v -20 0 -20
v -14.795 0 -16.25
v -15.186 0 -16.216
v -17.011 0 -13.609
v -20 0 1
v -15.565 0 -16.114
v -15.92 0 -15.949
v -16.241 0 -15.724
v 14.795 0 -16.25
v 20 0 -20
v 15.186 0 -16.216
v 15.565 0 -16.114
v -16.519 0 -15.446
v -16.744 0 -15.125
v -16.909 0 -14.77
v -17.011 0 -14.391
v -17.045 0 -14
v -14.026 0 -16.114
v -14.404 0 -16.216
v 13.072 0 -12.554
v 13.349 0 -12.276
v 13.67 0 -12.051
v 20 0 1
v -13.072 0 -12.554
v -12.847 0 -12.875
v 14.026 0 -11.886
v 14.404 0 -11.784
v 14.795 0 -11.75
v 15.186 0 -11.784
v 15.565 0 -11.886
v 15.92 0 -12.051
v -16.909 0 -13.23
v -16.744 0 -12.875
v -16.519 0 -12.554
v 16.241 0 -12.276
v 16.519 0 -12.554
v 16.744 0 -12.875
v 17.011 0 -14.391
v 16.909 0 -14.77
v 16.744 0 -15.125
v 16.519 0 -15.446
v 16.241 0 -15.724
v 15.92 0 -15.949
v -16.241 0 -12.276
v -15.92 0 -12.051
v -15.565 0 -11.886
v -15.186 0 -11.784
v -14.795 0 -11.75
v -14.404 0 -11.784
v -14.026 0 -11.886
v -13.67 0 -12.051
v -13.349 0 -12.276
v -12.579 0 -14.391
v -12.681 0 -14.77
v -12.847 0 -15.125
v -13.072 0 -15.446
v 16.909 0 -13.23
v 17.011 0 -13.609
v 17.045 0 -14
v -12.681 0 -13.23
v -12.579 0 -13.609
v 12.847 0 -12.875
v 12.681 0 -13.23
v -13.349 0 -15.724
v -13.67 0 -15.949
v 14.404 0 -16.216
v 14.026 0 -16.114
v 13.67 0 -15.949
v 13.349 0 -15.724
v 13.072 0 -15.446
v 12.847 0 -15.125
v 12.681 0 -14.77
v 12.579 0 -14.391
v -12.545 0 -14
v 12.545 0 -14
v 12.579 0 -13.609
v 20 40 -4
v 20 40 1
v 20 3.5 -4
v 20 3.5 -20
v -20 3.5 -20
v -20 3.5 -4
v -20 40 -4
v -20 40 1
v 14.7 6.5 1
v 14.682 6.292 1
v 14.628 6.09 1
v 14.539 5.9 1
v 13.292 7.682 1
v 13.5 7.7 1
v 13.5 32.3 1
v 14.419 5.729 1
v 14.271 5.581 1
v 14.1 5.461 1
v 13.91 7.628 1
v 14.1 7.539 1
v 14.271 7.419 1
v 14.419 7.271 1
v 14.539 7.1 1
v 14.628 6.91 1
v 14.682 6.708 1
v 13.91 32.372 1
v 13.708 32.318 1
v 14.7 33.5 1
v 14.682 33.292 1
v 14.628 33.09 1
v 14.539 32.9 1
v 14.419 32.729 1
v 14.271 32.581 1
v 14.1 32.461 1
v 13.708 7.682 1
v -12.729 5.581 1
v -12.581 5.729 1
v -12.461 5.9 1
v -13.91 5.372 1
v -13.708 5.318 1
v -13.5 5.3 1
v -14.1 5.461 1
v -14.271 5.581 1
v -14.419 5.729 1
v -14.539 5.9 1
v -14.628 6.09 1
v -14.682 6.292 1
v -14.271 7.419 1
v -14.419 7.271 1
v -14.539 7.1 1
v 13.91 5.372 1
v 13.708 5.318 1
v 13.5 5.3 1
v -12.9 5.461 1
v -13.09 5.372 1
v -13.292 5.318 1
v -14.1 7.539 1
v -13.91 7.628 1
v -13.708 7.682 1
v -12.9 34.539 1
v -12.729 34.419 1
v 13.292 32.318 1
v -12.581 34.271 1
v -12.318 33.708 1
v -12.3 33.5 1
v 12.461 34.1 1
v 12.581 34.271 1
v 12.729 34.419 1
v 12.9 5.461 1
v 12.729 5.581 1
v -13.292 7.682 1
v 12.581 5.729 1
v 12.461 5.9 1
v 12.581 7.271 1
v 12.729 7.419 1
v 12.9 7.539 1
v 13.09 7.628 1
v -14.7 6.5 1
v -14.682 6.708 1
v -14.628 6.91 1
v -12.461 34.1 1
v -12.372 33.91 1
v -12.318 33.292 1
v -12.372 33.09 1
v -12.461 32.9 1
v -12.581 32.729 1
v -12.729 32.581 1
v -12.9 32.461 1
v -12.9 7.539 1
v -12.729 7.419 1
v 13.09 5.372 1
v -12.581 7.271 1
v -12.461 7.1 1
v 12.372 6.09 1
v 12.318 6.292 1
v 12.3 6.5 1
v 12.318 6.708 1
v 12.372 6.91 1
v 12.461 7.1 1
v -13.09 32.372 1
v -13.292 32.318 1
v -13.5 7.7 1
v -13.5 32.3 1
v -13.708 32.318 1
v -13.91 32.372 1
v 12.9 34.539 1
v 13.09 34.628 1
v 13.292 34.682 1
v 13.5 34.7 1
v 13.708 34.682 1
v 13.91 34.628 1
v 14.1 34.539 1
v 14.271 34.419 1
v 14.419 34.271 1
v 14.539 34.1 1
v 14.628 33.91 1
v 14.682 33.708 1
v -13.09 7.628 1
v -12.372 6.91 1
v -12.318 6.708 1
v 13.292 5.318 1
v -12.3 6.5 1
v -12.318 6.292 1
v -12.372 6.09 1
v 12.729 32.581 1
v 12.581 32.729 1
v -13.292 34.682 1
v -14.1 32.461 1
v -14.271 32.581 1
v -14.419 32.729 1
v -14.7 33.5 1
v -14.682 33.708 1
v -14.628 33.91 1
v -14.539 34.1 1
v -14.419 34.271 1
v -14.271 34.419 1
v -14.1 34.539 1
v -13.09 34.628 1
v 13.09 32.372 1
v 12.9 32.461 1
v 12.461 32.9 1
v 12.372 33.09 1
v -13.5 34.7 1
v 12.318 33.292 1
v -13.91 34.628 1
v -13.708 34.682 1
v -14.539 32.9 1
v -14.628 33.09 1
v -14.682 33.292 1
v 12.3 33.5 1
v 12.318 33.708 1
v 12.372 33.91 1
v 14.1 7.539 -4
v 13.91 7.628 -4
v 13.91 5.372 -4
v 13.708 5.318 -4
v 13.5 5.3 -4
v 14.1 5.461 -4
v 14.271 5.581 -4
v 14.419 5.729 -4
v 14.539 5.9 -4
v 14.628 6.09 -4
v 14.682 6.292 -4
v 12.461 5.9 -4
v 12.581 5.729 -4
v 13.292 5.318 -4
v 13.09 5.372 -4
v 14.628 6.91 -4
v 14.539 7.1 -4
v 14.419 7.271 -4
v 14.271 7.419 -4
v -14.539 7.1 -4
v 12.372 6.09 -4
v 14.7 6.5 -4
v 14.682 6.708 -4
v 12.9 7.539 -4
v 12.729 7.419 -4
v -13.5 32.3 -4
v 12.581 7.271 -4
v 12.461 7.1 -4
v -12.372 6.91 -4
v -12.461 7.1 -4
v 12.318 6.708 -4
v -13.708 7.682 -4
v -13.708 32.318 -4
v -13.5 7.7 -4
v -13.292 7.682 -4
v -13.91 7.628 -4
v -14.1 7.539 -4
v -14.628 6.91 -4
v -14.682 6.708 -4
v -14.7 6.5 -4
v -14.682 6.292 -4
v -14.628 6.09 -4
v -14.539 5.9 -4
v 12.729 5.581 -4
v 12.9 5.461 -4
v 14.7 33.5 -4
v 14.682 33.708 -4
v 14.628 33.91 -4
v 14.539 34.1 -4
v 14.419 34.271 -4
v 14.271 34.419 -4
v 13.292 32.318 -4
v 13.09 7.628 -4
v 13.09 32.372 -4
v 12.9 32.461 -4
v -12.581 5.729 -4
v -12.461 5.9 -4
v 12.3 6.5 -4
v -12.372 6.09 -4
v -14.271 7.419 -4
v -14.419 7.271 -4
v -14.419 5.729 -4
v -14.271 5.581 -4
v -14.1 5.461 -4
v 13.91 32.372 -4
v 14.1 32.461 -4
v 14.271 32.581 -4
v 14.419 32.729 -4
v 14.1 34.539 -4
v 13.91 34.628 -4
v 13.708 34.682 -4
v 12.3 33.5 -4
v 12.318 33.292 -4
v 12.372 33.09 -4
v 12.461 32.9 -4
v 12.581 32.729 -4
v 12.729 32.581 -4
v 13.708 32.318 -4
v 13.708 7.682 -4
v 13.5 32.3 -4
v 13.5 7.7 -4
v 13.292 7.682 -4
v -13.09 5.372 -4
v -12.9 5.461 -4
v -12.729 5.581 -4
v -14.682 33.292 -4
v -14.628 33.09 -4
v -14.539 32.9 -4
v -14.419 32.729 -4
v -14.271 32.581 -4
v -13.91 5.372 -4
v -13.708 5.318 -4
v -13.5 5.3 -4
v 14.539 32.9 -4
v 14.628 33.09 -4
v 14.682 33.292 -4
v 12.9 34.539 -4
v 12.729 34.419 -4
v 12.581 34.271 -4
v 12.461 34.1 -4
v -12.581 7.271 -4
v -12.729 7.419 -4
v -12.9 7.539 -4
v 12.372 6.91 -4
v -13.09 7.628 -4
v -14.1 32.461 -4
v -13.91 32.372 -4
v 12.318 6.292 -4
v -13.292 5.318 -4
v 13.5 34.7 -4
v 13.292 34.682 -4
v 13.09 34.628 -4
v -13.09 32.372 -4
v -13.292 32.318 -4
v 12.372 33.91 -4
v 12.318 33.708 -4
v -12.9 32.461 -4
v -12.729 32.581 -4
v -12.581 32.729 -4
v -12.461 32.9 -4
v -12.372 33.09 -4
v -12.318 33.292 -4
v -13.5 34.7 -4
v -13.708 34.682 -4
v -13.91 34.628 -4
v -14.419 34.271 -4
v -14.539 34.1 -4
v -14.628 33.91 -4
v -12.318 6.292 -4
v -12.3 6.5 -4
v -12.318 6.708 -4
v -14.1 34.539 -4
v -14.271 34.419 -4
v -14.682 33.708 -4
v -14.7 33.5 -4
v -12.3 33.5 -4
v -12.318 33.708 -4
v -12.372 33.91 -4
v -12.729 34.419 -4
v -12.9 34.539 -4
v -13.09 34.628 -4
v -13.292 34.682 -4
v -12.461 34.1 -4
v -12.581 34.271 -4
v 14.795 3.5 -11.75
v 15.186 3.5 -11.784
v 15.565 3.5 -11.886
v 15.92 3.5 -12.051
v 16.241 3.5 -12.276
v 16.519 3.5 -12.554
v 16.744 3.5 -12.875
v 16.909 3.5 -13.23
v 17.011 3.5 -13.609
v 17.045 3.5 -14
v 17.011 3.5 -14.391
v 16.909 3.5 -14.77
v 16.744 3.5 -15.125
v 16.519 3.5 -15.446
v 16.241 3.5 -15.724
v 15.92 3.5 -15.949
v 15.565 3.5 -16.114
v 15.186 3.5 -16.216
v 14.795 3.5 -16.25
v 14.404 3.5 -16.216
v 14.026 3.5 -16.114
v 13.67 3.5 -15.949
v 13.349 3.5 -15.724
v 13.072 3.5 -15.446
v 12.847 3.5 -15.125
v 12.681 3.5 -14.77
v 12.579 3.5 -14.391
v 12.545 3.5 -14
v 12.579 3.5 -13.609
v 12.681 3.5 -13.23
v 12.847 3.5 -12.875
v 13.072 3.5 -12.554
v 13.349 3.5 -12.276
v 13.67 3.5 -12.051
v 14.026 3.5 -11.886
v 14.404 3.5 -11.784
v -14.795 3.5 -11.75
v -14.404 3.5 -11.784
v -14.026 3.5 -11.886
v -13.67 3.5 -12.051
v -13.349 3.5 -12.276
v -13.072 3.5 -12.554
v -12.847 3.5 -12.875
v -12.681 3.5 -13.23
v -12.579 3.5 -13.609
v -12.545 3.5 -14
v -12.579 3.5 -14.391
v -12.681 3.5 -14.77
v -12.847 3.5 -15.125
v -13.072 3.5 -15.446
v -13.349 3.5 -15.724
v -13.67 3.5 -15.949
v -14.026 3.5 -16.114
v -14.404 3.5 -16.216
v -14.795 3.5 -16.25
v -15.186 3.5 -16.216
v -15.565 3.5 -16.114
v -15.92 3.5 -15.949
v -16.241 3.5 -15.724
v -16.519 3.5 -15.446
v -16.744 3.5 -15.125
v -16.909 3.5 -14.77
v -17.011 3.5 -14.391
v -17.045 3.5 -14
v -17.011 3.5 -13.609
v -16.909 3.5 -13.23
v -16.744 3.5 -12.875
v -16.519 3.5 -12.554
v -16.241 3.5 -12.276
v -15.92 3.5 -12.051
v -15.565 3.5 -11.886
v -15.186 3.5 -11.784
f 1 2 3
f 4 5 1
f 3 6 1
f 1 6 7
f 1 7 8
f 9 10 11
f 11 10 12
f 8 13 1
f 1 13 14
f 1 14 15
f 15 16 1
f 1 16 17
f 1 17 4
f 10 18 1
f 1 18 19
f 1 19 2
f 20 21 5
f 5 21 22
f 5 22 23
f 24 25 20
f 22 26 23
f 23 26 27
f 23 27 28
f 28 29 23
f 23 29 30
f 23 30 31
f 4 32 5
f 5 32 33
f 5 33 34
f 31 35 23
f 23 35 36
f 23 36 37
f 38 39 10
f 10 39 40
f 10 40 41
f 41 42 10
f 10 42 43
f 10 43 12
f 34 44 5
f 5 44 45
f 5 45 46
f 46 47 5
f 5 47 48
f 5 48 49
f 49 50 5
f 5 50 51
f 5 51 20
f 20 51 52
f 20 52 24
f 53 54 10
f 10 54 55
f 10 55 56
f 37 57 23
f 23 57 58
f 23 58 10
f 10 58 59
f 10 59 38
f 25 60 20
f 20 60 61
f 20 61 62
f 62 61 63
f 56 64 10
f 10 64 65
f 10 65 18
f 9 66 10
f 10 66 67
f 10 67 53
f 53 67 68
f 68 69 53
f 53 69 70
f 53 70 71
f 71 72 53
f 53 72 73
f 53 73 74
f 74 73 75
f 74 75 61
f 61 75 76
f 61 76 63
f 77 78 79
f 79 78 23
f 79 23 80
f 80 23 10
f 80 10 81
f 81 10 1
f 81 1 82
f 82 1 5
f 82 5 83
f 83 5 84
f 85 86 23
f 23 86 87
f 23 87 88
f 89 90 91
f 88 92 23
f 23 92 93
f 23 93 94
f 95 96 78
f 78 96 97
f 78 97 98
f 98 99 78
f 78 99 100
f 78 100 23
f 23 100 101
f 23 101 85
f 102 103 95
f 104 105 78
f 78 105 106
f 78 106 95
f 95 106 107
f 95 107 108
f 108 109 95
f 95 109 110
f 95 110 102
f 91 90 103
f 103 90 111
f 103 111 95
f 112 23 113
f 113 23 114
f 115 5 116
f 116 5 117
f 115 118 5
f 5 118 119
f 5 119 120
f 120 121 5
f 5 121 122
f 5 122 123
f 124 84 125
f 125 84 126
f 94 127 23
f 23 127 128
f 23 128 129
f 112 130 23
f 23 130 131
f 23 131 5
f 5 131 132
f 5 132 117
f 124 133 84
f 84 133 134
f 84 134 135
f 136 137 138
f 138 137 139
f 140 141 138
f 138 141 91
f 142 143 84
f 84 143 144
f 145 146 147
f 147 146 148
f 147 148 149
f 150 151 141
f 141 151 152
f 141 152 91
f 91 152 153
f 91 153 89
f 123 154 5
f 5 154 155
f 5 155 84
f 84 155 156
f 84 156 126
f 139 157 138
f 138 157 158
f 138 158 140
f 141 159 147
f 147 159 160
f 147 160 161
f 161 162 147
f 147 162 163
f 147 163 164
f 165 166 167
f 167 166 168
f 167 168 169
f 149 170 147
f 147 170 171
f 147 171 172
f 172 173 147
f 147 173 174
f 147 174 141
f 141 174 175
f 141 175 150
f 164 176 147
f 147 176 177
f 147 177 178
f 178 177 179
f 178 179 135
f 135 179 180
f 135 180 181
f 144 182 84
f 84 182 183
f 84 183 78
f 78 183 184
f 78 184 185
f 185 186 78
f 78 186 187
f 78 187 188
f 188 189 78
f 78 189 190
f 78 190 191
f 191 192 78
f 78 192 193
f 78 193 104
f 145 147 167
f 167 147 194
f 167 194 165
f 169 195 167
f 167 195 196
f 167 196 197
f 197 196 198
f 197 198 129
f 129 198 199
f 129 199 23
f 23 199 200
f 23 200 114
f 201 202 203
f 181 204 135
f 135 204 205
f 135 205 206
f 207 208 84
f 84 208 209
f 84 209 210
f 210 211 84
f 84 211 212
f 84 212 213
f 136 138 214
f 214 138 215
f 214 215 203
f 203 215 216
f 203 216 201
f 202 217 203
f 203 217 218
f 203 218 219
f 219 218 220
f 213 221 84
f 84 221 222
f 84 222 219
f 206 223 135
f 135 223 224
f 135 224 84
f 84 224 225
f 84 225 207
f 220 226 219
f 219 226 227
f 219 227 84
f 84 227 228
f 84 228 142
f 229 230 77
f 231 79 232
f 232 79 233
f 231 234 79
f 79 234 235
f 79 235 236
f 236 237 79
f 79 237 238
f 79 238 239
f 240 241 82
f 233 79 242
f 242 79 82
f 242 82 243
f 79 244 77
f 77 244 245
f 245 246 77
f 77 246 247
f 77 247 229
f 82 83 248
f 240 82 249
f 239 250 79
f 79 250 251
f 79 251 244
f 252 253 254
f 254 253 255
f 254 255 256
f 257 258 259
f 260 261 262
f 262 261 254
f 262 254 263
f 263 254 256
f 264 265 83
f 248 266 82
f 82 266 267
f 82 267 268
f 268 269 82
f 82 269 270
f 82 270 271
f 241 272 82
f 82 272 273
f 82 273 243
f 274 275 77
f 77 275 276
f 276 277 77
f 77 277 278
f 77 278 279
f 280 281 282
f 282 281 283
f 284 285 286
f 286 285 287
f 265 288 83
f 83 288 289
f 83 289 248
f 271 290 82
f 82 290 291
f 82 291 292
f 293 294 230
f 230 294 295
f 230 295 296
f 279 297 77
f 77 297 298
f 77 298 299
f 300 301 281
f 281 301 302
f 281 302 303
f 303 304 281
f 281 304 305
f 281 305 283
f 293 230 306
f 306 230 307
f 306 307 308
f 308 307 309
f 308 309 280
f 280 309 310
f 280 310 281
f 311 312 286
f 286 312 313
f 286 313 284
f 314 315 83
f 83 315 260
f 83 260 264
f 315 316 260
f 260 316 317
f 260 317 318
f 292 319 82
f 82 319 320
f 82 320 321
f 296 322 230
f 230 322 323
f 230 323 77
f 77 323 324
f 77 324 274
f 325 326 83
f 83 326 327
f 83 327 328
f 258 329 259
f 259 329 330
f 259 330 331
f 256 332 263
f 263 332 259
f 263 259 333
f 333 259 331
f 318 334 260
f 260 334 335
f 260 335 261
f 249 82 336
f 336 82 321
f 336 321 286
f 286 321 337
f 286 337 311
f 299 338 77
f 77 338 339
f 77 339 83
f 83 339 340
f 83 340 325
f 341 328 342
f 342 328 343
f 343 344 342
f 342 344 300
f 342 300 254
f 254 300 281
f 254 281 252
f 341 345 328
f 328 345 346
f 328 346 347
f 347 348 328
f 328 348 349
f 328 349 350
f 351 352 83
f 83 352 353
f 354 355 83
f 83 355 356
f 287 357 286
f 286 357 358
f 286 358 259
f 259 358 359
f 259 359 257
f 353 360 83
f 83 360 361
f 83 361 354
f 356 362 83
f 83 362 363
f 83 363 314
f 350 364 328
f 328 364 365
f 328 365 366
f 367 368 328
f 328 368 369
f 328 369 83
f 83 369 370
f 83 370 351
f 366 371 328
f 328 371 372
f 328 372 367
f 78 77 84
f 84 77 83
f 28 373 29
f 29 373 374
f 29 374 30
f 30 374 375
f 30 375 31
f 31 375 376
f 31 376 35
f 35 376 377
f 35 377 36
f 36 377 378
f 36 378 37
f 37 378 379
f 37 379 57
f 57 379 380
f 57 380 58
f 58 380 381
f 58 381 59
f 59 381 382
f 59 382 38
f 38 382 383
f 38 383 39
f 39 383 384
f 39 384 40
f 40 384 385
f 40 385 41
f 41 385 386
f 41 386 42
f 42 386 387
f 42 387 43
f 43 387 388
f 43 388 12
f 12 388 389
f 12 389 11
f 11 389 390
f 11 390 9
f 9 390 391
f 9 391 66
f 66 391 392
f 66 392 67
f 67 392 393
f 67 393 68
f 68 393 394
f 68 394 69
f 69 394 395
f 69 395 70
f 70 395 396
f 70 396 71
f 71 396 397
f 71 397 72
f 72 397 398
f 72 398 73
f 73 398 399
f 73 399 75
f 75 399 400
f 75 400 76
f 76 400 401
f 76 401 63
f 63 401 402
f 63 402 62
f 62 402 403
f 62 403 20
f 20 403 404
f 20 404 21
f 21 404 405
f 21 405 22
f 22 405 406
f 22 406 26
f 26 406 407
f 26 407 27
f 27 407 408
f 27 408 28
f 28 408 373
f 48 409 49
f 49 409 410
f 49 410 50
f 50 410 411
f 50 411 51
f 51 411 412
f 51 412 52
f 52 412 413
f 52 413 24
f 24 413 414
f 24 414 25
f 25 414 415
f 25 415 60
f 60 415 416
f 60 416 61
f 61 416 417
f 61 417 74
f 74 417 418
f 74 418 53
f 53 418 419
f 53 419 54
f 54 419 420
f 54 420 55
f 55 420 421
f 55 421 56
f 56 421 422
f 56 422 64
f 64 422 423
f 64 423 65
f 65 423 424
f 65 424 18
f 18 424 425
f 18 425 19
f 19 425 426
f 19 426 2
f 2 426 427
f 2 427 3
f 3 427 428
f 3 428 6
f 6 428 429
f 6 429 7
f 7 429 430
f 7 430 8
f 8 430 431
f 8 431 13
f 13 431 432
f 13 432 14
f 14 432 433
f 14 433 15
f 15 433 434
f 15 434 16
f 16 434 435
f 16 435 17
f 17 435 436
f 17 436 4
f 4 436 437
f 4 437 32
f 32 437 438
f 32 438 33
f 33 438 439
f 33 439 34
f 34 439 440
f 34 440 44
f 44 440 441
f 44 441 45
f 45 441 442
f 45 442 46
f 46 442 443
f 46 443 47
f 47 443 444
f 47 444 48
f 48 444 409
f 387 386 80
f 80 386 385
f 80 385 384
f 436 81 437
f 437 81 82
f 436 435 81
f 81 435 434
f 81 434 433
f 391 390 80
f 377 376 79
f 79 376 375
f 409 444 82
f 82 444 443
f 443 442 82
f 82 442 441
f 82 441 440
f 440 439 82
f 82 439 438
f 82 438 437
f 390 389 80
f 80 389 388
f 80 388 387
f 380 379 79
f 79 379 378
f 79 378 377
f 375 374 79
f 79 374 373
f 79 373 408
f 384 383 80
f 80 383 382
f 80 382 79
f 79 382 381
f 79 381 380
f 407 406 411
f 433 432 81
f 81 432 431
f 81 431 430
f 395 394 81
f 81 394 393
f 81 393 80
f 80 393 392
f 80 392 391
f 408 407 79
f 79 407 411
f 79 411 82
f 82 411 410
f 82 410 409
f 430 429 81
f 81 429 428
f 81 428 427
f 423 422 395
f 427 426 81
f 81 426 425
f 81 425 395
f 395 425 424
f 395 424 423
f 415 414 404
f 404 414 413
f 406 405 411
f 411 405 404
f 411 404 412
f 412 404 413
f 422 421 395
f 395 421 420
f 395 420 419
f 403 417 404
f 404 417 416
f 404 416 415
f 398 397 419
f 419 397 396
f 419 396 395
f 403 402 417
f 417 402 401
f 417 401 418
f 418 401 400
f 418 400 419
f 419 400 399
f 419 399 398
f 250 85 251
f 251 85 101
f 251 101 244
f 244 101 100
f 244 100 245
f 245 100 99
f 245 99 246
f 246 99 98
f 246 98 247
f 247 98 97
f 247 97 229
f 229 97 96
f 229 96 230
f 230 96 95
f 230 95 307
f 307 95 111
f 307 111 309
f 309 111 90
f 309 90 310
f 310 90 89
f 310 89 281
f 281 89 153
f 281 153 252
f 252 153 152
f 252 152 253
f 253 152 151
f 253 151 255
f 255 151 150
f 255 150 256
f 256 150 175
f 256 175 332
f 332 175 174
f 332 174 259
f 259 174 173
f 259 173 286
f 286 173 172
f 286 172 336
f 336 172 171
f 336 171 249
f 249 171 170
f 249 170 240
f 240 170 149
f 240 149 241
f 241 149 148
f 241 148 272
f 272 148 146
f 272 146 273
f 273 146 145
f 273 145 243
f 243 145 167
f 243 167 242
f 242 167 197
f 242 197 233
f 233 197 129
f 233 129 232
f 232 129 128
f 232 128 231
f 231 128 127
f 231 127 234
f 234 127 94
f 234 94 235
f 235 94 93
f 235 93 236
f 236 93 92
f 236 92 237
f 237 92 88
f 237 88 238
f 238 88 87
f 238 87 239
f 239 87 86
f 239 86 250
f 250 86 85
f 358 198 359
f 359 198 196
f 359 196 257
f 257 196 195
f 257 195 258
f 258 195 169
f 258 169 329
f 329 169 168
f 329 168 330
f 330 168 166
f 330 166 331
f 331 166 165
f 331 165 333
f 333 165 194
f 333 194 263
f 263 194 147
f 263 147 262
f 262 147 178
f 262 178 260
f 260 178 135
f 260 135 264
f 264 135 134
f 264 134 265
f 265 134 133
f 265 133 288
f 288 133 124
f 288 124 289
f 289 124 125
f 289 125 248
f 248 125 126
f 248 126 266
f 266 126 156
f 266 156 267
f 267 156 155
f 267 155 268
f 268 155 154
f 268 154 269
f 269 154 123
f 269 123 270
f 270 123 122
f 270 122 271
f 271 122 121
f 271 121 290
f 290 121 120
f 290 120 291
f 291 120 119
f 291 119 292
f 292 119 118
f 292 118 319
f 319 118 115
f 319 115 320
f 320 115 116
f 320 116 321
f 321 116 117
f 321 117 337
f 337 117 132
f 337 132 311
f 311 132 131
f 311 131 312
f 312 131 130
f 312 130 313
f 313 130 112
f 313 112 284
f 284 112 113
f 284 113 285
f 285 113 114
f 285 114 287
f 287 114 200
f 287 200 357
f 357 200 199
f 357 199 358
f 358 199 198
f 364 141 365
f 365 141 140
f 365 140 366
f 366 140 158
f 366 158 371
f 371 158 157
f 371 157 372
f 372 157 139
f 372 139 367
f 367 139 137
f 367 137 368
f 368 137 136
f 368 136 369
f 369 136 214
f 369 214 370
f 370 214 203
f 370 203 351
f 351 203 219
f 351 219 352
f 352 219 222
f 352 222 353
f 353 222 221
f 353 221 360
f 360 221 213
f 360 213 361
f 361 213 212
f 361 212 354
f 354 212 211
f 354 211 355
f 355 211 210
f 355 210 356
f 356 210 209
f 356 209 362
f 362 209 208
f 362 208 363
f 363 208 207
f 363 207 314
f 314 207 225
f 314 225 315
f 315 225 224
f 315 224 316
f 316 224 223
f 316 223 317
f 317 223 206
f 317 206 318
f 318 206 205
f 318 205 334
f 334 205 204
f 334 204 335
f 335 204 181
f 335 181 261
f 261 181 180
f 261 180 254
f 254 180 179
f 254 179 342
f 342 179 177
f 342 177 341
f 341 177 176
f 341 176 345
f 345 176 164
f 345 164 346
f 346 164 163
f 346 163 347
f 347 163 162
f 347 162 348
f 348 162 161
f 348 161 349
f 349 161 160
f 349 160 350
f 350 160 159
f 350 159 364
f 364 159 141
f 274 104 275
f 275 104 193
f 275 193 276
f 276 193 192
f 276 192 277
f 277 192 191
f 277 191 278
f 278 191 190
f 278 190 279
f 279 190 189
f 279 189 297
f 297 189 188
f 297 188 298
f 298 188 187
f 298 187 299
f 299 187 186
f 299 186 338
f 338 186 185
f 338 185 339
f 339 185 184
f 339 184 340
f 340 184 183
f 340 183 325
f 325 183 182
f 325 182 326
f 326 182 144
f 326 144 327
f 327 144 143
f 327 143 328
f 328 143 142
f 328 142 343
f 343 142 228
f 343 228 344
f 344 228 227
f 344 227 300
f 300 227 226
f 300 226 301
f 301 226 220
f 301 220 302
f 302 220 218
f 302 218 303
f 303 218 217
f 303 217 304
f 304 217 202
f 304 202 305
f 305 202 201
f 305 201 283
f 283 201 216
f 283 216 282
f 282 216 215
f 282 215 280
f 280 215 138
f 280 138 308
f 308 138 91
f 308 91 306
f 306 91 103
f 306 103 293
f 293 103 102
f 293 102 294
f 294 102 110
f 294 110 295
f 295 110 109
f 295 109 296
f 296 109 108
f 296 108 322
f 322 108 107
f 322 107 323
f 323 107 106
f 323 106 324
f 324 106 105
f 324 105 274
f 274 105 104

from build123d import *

# Parameters (mm, degrees)
SKETCH_1_W          = 40
SKETCH_1_H          = 40
EXTRUDE_1_DEPTH     = 5
SKETCH_2_W          = 40
SKETCH_2_H          = 5
EXTRUDE_2_DEPTH     = 35
SKETCH_3_W          = 40
SKETCH_3_H          = 10
EXTRUDE_3_DEPTH     = 5
EXTRUDE_4_DEPTH     = 5
SKETCH_5_R          = 2.25
CUT_EXTRUDE_1_DEPTH = 20
CUT_EXTRUDE_2_DEPTH = 40
SKETCH_7_W          = 40
SKETCH_7_H          = 19
CUT_EXTRUDE_3_DEPTH = 20
SKETCH_8_W          = 40
SKETCH_8_H          = 1.5
CUT_EXTRUDE_4_DEPTH = 16
SKETCH_9_R          = 1.2
CUT_EXTRUDE_5_DEPTH = 20


with BuildPart() as part:
    # 草图1 → 凸台-拉伸1 (new body)
    with BuildSketch(Plane(origin=(0, 0, 0), x_dir=(1, 0, 0), z_dir=(0, 1, 0))):
        Rectangle(SKETCH_1_W, SKETCH_1_H)
    extrude(amount=EXTRUDE_1_DEPTH)

    # 草图2 → 凸台-拉伸2 (add)
    with BuildSketch(Plane(origin=(0, 5, 0), x_dir=(1, 0, 0), z_dir=(0, 1, 0))):
        with Locations((0, 1.5)):
            Rectangle(SKETCH_2_W, SKETCH_2_H)
    extrude(amount=EXTRUDE_2_DEPTH)

    # 草图3 → 凸台-拉伸3 (add)
    with BuildSketch(Plane.XZ):
        with Locations((0, 15)):
            Rectangle(SKETCH_3_W, SKETCH_3_H)
    extrude(amount=EXTRUDE_3_DEPTH)

    # 草图4 → 凸台-拉伸4 (add)
    with BuildSketch(Plane.XZ.offset(5)):
        Polygon((-20, 10), (-20, -20), (20, -20), (20, 10), (20, 20), (-20, 20), align=None)
    extrude(amount=EXTRUDE_4_DEPTH)

    # 草图5 → 切除-拉伸1 (cut)
    with BuildSketch(Plane(origin=(0, 5, 0), x_dir=(1, 0, 0), z_dir=(0, 1, 0))):
        with Locations(Location((-14.795139738, 14, 0), (0, 0, 90))):
            Circle(SKETCH_5_R)
        with Locations(Location((14.795139738, 14, 0), (0, 0, 90))):
            Circle(SKETCH_5_R)
    extrude(amount=-CUT_EXTRUDE_1_DEPTH, mode=Mode.SUBTRACT)

    # 草图6 → 切除-拉伸2 (cut)
    with BuildSketch(Plane.ZY.offset(20)):
        Polygon((10, 0), (20, 0), (20, -10), (-20, -10), (-20, -5), (10, -5), align=None)
    extrude(amount=-CUT_EXTRUDE_2_DEPTH, mode=Mode.SUBTRACT)

    # 草图7 → 切除-拉伸3 (cut)
    with BuildSketch(Plane(origin=(0, 5, 0), x_dir=(1, 0, 0), z_dir=(0, 1, 0))):
        with Locations((0, -10.5)):
            Rectangle(SKETCH_7_W, SKETCH_7_H)
    extrude(amount=-CUT_EXTRUDE_3_DEPTH, mode=Mode.SUBTRACT)

    # 草图8 → 切除-拉伸4 (cut)
    with BuildSketch(Plane(origin=(0, 0, -20), x_dir=(-1, 0, 0), z_dir=(0, 0, -1))):
        with Locations((0, 4.25)):
            Rectangle(SKETCH_8_W, SKETCH_8_H)
    extrude(amount=-CUT_EXTRUDE_4_DEPTH, mode=Mode.SUBTRACT)

    # 草图9 → 切除-拉伸5 (cut)
    with BuildSketch(Plane.XY.offset(1)):
        with Locations((13.5, 6.5)):
            Circle(SKETCH_9_R)
        with Locations((-13.5, 6.5)):
            Circle(SKETCH_9_R)
        with Locations((-13.5, 33.5)):
            Circle(SKETCH_9_R)
        with Locations((13.5, 33.5)):
            Circle(SKETCH_9_R)
    extrude(amount=-CUT_EXTRUDE_5_DEPTH, mode=Mode.SUBTRACT)


solid = part.part
